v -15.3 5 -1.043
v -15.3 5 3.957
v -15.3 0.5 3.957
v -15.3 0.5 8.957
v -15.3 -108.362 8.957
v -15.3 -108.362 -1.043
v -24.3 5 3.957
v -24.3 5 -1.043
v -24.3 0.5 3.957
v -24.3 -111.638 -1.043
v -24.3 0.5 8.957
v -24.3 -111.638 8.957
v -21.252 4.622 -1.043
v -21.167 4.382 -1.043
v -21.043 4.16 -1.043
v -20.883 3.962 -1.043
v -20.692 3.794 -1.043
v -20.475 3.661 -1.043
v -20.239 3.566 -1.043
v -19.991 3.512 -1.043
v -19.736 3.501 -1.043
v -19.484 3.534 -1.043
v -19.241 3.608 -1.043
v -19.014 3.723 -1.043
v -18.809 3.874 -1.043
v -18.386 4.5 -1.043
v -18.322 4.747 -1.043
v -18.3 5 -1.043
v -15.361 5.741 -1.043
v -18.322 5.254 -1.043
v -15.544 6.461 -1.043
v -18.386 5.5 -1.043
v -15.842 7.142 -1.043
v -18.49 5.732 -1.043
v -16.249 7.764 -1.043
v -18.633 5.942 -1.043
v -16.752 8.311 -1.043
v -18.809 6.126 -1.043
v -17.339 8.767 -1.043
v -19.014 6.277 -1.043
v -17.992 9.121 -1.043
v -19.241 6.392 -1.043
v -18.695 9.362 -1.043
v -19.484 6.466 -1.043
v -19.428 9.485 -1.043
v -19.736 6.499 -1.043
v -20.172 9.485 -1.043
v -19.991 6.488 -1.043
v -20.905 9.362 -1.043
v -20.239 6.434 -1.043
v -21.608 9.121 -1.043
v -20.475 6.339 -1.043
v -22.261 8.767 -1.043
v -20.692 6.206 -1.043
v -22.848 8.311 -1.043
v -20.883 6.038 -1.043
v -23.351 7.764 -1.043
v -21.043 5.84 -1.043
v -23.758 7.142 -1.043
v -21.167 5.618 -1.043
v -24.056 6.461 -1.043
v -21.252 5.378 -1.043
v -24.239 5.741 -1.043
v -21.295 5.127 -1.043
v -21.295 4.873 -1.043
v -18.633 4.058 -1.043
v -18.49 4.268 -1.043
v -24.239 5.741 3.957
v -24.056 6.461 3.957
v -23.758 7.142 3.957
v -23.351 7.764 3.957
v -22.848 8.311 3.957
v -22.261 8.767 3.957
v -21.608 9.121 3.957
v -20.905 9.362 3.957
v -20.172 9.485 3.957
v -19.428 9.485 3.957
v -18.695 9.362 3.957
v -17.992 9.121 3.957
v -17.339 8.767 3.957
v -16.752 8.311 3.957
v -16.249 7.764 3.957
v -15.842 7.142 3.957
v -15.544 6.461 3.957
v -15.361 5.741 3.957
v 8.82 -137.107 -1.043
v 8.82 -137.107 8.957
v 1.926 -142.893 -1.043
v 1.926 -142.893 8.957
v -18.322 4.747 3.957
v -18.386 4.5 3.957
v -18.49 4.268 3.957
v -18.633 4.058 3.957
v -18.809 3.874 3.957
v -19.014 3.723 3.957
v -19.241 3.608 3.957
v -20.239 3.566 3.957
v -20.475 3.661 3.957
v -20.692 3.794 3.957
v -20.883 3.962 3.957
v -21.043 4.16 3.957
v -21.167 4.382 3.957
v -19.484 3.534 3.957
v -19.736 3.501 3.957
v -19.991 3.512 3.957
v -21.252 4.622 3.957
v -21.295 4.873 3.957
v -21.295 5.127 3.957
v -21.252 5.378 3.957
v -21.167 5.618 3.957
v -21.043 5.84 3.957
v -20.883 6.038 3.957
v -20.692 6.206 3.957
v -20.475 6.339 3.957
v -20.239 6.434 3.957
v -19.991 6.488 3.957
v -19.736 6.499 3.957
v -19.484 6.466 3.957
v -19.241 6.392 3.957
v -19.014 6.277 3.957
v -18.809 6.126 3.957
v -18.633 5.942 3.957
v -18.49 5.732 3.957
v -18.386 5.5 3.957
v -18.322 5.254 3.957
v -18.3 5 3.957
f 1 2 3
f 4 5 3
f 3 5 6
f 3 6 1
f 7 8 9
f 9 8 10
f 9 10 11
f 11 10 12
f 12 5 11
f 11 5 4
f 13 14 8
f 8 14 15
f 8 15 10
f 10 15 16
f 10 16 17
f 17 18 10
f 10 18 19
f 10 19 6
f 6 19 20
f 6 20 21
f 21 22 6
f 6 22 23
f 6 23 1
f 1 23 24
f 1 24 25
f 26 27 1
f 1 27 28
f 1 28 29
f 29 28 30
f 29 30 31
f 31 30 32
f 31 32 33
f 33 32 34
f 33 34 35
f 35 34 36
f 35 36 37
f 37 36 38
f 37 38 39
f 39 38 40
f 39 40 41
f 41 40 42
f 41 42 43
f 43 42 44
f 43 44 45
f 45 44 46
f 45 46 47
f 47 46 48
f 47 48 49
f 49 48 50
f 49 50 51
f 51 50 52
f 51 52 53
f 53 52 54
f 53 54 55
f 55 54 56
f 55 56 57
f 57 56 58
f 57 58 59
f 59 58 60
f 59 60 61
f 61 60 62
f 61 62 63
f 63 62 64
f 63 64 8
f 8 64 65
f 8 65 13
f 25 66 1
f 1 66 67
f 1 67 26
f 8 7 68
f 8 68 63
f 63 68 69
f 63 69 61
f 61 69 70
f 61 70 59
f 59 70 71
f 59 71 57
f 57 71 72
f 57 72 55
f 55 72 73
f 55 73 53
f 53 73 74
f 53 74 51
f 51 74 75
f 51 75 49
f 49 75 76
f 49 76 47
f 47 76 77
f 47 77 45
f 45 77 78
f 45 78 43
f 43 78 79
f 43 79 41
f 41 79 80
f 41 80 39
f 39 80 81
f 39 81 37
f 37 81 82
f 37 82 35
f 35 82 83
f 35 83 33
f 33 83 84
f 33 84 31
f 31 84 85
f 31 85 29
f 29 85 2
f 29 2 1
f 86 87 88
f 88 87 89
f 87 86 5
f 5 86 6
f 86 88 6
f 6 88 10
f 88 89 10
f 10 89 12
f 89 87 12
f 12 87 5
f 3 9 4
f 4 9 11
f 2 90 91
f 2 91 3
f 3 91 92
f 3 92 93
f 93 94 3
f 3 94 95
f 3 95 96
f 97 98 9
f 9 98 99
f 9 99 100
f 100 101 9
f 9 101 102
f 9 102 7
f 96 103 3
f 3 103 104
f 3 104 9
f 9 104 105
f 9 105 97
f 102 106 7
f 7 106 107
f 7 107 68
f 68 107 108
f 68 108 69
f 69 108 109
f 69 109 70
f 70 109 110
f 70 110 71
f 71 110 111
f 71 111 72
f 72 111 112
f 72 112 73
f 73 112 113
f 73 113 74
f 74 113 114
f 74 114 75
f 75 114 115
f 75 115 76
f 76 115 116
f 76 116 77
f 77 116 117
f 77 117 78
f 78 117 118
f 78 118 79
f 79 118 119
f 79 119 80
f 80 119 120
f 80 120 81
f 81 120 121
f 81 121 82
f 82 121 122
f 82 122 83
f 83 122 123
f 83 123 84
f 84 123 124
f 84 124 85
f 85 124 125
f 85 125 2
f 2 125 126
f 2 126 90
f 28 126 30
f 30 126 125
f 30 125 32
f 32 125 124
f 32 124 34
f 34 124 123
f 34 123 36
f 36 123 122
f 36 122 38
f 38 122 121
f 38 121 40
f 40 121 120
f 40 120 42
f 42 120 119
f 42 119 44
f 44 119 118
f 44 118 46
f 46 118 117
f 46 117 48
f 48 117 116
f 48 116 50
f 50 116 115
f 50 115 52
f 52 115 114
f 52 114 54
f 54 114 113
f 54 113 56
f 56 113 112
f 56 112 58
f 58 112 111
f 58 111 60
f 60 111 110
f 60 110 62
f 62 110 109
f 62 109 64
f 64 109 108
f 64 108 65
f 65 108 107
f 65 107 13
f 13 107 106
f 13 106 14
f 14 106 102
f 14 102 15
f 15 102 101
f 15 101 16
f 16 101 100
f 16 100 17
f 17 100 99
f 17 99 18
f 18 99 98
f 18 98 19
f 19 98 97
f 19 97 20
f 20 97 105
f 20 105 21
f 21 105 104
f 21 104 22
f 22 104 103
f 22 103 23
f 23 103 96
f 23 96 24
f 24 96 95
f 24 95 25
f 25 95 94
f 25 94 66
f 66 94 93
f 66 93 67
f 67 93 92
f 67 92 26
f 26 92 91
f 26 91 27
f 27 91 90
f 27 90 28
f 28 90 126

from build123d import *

# Parameters (mm, degrees)
SKETCH_4_W          = 9
SKETCH_4_H          = 10
EXTRUDE_2_DEPTH     = 10
CUT_EXTRUDE_1_DEPTH = 10
SKETCH_4_2_W        = 9
SKETCH_4_2_H        = 10
CUT_EXTRUDE_START   = 10
CUT_EXTRUDE_2_DEPTH = 10
SKETCH_8_R          = 1.5
CUT_EXTRUDE_3_DEPTH = 10


with BuildPart() as part:
    # 草图4 → 凸台-拉伸2 (new body)
    with BuildSketch(Plane(origin=(0, 0, 0), x_dir=(1, 0, 0), z_dir=(0, 1, 0))):
        with Locations((-19.8, -3.957142857)):
            Rectangle(SKETCH_4_W, SKETCH_4_H)
    extrude(amount=EXTRUDE_2_DEPTH)

    # 草图6 → 切除-拉伸1 (cut)
    with BuildSketch(Plane.XY.offset(8.957142857)):
        with BuildLine():
            Line((-24.3, 10), (-24.3, 5))
            ThreePointArc((-24.3, 5), (-19.8, 9.5), (-15.3, 5))
            Line((-15.3, 5), (-15.3, 10))
            Line((-15.3, 10), (-24.3, 10))
        make_face()
    extrude(amount=-CUT_EXTRUDE_1_DEPTH, mode=Mode.SUBTRACT)

    # 扫描2: sweep along a path in 草图5
    with BuildLine(Plane.XY.offset(3.957142857)) as sweep_2_path:
        Line((-19.8, 0), (-19.8, -110))
        Line((-19.8, -110), (5.372988935, -140))
    # 草图4<2> → 扫描2 (sweep)
    with BuildSketch(Plane(origin=(0, 0, 0), x_dir=(1, 0, 0), z_dir=(0, 1, 0))):
        with Locations((-19.8, -3.957142857)):
            Rectangle(SKETCH_4_2_W, SKETCH_4_2_H)
    sweep(path=sweep_2_path.line, transition=Transition.RIGHT)

    # 草图7 → 切除-拉伸2 (cut)
    with BuildSketch(Plane.XY.offset(3.957142857).offset(CUT_EXTRUDE_START)):
        with BuildLine():
            Line((-24.3, 5), (-24.3, 0.5))
            Line((-24.3, 0.5), (-15.3, 0.5))
            Line((-15.3, 0.5), (-15.3, 5))
            ThreePointArc((-15.3, 5), (-19.8, 9.5), (-24.3, 5))
        make_face()
    extrude(amount=-CUT_EXTRUDE_2_DEPTH, mode=Mode.SUBTRACT)

    # 草图8 → 切除-拉伸3 (cut)
    with BuildSketch(Plane.XY.offset(3.957142857)):
        with Locations((-19.8, 5)):
            Circle(SKETCH_8_R)
    extrude(amount=-CUT_EXTRUDE_3_DEPTH, mode=Mode.SUBTRACT)


solid = part.part
